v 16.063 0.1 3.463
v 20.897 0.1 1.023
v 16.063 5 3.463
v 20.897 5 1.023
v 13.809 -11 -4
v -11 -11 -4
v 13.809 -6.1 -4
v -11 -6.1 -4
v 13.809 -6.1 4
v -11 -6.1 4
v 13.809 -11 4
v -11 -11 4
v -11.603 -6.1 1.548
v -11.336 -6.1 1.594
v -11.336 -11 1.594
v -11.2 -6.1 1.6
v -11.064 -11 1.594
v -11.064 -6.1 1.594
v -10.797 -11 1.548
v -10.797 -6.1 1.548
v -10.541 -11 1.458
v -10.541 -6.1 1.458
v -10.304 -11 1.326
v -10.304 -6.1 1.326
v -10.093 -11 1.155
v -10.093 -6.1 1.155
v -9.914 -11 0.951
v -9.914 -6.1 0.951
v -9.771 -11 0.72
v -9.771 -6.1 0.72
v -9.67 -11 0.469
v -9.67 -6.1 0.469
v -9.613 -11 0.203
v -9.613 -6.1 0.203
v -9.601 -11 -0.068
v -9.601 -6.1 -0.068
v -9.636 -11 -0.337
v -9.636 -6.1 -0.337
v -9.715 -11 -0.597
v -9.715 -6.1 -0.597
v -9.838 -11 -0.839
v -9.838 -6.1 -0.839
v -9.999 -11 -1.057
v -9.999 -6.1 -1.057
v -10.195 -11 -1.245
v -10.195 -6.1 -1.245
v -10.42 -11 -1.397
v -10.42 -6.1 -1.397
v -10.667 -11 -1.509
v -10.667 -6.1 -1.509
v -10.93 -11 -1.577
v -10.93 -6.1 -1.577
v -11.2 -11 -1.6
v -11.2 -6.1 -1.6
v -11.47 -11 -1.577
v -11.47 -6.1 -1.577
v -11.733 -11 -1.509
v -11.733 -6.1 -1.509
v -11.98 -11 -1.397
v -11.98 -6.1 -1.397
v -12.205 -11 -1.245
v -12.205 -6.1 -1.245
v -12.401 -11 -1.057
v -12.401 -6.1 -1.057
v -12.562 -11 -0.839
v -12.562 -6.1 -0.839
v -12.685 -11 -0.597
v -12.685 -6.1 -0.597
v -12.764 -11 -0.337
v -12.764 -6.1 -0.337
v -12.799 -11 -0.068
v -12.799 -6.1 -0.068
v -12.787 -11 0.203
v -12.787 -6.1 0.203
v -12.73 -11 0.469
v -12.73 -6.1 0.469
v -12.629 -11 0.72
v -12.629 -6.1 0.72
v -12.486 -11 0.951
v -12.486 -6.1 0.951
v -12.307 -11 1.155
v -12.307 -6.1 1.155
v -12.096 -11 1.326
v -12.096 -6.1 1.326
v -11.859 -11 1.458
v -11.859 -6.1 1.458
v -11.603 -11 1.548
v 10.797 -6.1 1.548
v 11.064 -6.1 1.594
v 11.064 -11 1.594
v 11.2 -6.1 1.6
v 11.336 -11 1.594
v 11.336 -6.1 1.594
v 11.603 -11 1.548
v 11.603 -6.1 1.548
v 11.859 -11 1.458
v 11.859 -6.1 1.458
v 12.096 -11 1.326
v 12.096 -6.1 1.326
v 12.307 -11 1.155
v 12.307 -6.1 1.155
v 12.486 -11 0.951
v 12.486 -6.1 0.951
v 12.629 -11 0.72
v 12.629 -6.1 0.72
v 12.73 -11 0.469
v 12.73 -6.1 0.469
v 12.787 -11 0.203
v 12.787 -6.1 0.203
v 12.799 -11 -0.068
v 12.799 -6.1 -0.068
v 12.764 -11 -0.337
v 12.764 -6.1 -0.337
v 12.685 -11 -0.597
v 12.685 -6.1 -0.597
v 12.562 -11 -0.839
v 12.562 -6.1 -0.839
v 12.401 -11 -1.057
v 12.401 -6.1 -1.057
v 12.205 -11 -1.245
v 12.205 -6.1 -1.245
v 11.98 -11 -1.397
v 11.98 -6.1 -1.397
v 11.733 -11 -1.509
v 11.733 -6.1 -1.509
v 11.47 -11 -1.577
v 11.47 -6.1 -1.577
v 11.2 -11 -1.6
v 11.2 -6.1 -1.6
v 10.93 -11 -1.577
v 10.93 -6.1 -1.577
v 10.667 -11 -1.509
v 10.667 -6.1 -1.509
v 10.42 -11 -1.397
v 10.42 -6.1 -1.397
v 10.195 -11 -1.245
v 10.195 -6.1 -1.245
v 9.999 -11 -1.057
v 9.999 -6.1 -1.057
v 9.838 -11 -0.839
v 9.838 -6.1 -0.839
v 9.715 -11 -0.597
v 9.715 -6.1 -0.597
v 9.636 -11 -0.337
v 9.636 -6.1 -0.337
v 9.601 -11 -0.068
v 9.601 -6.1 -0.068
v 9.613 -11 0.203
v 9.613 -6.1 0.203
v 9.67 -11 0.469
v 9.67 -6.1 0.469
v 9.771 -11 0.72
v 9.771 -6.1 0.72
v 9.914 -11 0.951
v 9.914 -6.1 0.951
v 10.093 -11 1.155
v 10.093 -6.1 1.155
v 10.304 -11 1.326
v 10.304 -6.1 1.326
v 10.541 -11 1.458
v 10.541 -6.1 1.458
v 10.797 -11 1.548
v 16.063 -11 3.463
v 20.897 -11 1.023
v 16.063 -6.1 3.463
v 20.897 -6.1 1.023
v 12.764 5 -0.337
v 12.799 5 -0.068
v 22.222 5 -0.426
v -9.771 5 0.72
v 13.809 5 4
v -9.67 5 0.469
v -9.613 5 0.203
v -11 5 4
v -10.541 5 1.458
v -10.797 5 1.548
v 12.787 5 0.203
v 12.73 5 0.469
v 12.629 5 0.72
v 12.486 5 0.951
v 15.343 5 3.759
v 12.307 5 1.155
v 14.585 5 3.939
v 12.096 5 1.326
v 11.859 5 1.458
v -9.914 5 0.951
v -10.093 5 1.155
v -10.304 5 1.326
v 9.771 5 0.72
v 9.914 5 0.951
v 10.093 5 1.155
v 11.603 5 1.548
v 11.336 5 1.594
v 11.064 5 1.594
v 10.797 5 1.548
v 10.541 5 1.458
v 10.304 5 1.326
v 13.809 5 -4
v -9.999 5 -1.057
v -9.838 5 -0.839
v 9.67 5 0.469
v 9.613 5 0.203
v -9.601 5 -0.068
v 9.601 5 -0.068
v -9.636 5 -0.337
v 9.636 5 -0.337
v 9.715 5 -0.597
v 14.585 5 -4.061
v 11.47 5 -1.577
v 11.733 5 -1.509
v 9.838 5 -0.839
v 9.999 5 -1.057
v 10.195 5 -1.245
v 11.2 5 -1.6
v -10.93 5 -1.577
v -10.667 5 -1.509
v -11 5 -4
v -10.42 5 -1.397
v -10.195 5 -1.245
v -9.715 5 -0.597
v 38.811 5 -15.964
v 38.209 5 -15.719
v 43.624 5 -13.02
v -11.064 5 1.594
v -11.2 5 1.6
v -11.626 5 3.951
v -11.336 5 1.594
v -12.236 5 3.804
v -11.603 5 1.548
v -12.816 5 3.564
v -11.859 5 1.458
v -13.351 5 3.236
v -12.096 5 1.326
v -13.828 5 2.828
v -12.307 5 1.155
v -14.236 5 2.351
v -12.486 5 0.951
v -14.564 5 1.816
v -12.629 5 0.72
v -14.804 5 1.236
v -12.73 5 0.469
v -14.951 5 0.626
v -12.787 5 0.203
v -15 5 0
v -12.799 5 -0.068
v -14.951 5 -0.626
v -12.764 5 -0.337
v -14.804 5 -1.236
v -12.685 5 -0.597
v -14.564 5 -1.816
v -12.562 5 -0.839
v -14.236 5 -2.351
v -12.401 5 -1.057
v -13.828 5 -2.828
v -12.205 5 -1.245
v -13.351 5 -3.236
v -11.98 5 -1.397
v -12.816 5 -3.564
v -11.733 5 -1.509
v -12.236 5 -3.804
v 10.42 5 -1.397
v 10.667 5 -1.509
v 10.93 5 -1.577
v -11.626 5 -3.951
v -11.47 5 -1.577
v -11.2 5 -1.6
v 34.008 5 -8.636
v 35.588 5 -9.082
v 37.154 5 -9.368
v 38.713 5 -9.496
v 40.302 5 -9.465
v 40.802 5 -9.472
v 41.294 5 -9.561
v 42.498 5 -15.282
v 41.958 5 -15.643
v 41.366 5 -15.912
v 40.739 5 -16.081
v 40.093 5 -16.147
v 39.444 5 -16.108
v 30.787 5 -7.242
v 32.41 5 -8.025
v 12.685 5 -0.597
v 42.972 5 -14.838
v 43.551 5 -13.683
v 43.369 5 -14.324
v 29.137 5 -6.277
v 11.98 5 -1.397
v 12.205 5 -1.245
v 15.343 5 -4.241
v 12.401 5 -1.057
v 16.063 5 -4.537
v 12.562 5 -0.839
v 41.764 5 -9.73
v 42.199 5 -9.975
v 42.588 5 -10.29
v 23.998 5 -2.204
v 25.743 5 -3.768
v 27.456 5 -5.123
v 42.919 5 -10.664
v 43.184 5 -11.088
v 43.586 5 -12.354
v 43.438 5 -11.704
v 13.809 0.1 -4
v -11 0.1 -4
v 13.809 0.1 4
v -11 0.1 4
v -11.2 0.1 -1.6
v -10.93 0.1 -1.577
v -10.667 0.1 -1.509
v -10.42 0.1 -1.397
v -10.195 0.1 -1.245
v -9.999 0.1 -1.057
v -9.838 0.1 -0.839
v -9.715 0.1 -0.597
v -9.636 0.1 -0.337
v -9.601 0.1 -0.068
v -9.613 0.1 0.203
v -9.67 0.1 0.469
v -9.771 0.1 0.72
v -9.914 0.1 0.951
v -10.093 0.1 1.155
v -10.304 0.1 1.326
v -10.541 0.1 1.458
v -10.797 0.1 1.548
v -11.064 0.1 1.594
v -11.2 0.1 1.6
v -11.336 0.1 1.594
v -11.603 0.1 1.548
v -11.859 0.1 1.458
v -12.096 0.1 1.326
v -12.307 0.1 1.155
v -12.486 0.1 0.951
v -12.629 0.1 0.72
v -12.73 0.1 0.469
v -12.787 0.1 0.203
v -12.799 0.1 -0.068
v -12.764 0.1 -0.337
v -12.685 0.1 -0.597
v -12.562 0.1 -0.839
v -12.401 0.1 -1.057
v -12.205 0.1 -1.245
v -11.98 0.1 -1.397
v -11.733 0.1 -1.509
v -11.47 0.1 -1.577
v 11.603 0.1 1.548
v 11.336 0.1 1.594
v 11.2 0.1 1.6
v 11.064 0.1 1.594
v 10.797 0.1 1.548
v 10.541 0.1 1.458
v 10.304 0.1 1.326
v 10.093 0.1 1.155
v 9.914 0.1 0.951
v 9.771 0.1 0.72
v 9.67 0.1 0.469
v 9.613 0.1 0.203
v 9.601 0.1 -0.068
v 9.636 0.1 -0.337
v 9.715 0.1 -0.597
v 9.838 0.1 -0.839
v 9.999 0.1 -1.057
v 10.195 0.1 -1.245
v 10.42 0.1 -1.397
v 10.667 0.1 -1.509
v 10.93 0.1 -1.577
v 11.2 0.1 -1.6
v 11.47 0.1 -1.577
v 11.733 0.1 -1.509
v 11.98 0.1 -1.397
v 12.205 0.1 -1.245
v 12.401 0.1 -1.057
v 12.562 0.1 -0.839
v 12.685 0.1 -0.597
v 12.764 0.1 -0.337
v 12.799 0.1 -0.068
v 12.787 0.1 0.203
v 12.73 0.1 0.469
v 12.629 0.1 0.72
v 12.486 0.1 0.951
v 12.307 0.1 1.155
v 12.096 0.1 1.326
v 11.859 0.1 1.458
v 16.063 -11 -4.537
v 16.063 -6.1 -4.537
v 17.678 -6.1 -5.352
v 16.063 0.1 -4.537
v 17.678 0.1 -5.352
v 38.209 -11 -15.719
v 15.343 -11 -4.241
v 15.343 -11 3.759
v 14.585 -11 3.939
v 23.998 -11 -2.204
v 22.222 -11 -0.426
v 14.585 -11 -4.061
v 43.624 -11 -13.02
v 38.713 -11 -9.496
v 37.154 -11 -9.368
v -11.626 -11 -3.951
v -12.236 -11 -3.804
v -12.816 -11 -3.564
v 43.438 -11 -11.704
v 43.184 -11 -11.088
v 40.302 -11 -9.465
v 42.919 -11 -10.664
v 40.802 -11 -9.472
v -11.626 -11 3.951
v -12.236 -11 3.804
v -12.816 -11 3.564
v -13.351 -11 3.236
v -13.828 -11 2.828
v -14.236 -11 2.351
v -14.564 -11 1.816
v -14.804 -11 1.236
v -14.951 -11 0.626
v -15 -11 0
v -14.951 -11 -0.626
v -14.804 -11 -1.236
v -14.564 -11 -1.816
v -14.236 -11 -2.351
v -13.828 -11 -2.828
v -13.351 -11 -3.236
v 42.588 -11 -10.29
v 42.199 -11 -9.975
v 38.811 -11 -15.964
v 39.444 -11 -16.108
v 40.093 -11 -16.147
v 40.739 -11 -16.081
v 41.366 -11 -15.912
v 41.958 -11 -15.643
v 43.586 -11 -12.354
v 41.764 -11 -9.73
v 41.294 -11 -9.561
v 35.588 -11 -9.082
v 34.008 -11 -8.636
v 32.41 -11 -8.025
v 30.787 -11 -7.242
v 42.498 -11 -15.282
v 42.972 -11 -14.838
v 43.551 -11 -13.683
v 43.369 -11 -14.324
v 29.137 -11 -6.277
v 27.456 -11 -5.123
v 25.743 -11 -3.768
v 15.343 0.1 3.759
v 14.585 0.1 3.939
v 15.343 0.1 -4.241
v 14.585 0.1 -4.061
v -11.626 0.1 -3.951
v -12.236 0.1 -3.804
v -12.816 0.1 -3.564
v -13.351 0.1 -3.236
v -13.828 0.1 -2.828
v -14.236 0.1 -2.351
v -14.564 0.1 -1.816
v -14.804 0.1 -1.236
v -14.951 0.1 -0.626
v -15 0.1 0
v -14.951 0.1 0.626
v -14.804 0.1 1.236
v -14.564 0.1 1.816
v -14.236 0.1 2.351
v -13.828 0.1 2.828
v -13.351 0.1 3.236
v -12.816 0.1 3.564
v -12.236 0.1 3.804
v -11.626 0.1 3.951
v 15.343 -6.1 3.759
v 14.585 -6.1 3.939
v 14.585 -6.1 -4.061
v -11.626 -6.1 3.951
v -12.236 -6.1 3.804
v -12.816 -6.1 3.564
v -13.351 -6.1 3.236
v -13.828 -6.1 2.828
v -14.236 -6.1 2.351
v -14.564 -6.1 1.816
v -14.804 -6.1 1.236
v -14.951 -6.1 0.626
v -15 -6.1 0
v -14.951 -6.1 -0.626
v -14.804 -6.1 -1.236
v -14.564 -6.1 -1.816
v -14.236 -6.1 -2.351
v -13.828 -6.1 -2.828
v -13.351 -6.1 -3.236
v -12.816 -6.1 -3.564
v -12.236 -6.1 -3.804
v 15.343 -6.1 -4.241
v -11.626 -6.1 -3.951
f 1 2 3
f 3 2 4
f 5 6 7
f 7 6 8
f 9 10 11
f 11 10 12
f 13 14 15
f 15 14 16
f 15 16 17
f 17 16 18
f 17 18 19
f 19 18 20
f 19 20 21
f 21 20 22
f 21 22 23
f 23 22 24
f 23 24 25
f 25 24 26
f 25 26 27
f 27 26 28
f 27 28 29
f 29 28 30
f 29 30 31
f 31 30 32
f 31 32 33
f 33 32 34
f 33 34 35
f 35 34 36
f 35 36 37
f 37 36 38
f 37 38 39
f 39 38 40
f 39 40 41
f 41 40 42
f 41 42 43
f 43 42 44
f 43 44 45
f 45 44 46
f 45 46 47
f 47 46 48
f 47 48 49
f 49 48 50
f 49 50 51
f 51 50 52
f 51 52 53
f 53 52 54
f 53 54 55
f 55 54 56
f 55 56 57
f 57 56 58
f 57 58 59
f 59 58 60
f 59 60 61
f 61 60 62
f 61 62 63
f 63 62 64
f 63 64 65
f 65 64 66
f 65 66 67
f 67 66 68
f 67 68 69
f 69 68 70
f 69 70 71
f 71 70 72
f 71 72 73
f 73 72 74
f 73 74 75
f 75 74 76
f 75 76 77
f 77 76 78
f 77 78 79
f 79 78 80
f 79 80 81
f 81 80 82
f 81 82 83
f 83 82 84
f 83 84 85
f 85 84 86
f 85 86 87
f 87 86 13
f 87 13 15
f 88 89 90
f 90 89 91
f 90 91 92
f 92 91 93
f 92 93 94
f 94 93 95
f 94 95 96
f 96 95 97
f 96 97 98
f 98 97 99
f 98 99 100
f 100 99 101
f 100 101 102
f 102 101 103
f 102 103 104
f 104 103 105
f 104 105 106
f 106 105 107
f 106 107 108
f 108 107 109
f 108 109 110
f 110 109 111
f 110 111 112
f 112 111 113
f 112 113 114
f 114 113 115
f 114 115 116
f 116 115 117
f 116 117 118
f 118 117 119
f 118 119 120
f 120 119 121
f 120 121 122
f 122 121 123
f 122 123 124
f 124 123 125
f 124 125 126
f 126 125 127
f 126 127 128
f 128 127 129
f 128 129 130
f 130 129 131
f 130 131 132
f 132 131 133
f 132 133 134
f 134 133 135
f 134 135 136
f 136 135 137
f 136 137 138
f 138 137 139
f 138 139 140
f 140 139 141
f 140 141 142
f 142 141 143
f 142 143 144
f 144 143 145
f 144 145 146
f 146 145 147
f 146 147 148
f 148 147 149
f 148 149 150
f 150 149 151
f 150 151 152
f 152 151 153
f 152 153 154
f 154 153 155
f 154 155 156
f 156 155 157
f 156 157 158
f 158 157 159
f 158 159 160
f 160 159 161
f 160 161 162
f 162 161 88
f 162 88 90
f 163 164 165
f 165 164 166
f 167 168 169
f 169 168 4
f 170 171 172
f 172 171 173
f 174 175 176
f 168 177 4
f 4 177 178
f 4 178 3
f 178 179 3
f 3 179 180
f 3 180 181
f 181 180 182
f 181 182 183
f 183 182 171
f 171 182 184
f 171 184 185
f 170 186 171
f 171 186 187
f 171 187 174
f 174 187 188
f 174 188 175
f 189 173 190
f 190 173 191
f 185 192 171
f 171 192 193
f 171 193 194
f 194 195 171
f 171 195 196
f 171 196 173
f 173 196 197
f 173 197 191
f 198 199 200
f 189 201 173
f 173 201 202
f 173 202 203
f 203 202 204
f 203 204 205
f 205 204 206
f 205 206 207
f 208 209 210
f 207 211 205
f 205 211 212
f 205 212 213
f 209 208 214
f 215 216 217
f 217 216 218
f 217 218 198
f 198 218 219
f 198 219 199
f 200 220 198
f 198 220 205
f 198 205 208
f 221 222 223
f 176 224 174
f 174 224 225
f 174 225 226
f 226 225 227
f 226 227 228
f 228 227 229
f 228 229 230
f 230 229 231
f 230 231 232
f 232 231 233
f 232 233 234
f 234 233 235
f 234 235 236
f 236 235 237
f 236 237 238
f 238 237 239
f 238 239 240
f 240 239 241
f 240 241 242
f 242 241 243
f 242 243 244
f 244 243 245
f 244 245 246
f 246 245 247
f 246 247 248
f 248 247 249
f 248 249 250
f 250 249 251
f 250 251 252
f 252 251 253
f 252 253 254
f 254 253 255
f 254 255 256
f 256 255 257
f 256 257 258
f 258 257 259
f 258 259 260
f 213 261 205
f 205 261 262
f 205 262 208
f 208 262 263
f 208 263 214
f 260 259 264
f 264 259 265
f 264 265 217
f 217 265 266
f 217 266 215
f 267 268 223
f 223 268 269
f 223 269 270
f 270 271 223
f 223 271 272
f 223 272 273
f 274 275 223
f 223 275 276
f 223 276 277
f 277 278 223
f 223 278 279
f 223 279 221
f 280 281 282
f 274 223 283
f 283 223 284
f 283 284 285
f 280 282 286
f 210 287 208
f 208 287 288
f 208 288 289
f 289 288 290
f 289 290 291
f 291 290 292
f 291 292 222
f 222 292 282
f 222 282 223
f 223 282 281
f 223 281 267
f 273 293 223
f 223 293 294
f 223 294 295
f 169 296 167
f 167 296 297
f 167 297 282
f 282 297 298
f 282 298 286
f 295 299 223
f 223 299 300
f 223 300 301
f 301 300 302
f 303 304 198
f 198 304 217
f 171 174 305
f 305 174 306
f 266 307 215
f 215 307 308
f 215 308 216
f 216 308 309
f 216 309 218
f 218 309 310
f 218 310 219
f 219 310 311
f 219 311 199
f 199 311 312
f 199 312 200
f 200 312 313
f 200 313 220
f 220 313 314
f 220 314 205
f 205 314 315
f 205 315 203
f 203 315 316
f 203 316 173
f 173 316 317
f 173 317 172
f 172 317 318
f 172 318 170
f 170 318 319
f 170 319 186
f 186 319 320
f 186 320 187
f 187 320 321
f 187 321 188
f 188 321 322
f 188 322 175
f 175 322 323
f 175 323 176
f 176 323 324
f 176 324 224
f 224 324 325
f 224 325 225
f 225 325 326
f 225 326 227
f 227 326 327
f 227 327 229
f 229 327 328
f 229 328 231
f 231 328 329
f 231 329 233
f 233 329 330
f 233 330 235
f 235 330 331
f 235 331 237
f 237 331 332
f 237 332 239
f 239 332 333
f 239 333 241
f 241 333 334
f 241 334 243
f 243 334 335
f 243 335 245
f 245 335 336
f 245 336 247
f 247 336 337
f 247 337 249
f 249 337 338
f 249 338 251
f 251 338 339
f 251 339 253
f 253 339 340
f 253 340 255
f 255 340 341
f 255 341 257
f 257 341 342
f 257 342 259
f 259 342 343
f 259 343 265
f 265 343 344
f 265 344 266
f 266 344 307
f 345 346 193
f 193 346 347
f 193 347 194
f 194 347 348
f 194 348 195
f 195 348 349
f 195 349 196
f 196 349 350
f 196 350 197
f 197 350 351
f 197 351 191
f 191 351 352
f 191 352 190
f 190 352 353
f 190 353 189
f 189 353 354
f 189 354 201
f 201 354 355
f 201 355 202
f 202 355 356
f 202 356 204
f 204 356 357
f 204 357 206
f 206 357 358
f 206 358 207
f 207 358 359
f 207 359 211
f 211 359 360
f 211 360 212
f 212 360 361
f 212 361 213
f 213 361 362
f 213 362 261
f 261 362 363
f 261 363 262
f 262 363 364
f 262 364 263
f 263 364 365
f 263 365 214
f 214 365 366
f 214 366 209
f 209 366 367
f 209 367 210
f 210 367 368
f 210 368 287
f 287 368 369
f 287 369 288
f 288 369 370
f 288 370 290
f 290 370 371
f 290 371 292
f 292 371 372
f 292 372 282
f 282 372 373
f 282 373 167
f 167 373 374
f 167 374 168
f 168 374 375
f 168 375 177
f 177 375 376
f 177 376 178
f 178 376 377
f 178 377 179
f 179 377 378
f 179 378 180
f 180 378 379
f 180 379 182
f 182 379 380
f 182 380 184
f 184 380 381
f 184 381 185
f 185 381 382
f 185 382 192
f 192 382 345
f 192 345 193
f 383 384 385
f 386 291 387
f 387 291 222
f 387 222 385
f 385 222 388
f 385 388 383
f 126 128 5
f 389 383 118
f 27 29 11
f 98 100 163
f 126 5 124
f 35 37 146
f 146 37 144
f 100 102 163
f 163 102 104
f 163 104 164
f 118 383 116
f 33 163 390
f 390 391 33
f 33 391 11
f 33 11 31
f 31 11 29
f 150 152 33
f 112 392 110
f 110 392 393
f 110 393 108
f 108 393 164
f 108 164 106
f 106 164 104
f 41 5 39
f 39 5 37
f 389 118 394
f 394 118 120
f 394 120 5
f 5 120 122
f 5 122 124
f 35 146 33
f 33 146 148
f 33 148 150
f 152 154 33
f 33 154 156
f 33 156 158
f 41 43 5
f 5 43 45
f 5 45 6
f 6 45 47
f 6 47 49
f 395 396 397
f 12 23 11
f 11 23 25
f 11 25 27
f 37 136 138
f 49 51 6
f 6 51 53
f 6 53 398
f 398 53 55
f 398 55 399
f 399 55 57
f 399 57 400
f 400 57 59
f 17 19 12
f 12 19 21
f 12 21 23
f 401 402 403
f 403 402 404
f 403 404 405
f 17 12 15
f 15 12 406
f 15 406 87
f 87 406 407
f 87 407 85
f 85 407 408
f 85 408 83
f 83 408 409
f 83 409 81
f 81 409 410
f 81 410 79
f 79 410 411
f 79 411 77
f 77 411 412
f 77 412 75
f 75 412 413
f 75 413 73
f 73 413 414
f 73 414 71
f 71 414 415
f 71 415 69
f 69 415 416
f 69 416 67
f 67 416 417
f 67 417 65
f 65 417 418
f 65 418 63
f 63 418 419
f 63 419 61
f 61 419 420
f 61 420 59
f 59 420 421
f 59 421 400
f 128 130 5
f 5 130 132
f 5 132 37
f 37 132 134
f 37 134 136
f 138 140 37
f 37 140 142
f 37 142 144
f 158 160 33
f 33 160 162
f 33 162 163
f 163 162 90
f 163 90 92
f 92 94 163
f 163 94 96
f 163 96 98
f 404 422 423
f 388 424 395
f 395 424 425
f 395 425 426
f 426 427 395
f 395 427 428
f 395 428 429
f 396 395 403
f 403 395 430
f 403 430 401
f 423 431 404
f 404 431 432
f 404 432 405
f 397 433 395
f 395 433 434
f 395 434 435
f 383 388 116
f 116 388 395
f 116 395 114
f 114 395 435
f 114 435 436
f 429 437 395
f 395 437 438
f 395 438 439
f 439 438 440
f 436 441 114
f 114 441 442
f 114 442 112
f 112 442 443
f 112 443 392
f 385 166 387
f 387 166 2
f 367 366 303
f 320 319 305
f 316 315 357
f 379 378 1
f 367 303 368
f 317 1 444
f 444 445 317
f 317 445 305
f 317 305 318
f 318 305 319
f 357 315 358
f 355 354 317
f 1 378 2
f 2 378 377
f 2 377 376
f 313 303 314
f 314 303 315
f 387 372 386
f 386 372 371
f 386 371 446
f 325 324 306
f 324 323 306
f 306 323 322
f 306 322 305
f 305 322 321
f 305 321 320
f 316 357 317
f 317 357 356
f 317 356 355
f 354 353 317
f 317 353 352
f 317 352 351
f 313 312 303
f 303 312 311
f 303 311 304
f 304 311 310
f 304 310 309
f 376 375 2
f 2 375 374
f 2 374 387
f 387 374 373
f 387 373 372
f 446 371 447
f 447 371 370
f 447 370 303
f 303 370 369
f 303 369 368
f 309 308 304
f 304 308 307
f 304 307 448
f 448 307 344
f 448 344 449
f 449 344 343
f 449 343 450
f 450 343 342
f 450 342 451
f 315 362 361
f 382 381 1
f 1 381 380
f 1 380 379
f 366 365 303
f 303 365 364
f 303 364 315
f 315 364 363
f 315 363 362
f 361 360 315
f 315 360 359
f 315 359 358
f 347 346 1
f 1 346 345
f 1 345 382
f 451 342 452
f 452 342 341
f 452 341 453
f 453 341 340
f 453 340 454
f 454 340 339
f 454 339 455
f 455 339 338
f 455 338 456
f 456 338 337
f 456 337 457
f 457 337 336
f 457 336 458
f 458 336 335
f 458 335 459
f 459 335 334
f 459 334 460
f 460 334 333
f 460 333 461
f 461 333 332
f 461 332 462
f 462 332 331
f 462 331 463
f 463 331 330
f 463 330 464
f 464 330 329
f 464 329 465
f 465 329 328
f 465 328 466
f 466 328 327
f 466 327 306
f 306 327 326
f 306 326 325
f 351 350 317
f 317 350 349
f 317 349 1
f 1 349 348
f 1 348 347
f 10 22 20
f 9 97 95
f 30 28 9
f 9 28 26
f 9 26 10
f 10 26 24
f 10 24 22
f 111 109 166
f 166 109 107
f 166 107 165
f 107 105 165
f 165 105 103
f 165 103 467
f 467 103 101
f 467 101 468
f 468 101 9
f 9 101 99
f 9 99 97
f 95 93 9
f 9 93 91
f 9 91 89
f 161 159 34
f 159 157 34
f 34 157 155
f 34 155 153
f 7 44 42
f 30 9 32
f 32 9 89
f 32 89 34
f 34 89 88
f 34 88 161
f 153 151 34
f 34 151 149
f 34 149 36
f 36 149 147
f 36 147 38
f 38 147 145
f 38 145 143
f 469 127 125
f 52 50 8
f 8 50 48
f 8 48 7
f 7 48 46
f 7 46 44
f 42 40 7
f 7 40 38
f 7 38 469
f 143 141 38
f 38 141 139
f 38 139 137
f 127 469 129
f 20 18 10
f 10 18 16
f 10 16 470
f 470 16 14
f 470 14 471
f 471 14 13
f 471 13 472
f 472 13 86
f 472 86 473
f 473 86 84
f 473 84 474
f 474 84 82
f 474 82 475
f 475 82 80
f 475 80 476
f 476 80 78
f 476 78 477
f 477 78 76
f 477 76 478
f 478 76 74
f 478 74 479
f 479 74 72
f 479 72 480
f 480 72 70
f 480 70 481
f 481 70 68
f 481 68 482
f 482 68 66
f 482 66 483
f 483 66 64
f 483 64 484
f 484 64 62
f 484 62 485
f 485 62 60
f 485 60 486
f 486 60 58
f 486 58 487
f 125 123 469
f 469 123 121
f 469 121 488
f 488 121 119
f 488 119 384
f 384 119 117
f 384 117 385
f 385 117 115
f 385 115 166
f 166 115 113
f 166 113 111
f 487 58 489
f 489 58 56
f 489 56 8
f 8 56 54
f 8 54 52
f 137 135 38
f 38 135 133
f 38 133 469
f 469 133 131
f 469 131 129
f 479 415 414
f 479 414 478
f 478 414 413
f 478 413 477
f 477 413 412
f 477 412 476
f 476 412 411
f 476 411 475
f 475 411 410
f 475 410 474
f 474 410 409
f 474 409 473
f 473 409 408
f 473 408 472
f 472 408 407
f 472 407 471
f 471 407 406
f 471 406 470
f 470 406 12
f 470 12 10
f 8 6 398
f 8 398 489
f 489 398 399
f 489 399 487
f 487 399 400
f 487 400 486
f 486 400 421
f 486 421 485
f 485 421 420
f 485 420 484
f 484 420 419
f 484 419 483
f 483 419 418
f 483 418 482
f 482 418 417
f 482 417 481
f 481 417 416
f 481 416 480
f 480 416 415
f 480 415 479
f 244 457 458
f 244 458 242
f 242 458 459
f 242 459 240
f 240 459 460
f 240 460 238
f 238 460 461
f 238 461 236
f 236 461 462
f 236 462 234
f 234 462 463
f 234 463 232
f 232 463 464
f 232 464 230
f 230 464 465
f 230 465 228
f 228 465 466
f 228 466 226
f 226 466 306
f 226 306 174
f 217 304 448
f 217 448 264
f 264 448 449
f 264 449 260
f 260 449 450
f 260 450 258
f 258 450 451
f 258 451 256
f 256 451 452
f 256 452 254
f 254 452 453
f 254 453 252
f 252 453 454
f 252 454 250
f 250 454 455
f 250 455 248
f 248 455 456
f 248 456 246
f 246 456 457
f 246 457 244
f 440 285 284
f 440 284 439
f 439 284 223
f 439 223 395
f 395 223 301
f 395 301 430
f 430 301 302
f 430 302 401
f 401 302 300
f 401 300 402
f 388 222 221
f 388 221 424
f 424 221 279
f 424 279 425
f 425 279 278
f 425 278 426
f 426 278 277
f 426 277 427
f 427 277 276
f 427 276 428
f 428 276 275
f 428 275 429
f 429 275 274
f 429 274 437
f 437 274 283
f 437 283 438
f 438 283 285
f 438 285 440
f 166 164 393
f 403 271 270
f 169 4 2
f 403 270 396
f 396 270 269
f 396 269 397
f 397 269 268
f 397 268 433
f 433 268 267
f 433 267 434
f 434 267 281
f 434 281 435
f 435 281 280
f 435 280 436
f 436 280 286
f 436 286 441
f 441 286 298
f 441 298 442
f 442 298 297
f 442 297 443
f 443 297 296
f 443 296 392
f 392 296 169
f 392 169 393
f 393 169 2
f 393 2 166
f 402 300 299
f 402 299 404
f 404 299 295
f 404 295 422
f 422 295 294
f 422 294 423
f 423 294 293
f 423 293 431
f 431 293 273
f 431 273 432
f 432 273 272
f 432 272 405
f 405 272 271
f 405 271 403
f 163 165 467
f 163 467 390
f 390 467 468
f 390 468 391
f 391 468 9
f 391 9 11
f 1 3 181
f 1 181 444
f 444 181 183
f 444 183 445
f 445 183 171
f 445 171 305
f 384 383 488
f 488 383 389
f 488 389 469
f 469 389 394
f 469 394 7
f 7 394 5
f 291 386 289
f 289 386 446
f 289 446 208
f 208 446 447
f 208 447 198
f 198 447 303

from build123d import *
from build123d.topology import SkipClean

# Parameters (mm, degrees)
SKETCH_1_W               = 30
SKETCH_1_H               = 8
SKETCH_1_R               = 1.6
EXTRUDE_1_DEPTH          = 5
EXTRUDE_2_DEPTH          = 5
EXTRUDE_START            = 11
SKETCH_3_R               = 1.6
EXTRUDE_3_DEPTH          = 11
CUT_EXTRUDE_1_DEPTH      = 0.1
CUT_EXTRUDE_1_DEPTH_BACK = 6.1
FILLET_1_R               = 4
FILLET_2_R               = 4
CUT_EXTRUDE_2_DEPTH      = 16
FILLET_3_R               = 3
FILLET_4_R               = 5


# Some blends are built 0.0001 mm under size
with BuildPart() as part:
    # 草图1 → 凸台-拉伸1 (new body)
    with BuildSketch(Plane(origin=(0, 0, 0), x_dir=(1, 0, 0), z_dir=(0, 1, 0))):
        Rectangle(SKETCH_1_W, SKETCH_1_H)
        with Locations(Location((-11.2, 0, 0), (0, 0, 270))):
            Circle(SKETCH_1_R, mode=Mode.SUBTRACT)
        with Locations(Location((11.2, 0, 0), (0, 0, 90))):
            Circle(SKETCH_1_R, mode=Mode.SUBTRACT)
    extrude(amount=EXTRUDE_1_DEPTH)

    # 草图2 → 凸台-拉伸2 (add)
    with BuildSketch(Plane(origin=(0, 5, 0), x_dir=(1, 0, 0), z_dir=(0, 1, 0))):
        Polygon((15, 4), (41.779934935, 17.521652446), (44.998681359, 11.146853201), (15, -4), align=None)
    extrude(amount=-EXTRUDE_2_DEPTH)

    # 草图3 → 凸台-拉伸3 (add)
    with SkipClean():  # the faces are left unmerged after this step: merging them gives an invalid solid
        with BuildSketch(Plane.XZ.offset(EXTRUDE_START)):
            Polygon((-15, -4), (15, -4), (41.779934935, -17.521652446), (44.998681359, -11.146853201), (15, 4), (-15, 4), align=None)
            with Locations(Location((-11.2, 0, 0), (0, 0, 270))):
                Circle(SKETCH_3_R, mode=Mode.SUBTRACT)
            with Locations(Location((11.2, 0, 0), (0, 0, 270))):
                Circle(SKETCH_3_R, mode=Mode.SUBTRACT)
        extrude(amount=-EXTRUDE_3_DEPTH)

    # 草图4 → 切除-拉伸1 (cut, two sides: drawn at the far end of the back side and taken through both)
    with BuildSketch(Plane(origin=(0, 0, 0), x_dir=(1, 0, 0), z_dir=(0, 1, 0)).offset(-CUT_EXTRUDE_1_DEPTH_BACK)):
        Polygon((17.677993493, 5.352165245), (20.899244527, -1.027594436), (19.919281017, -1.51616991), (15, -4), (-15, -4), (-15, 4), (15, 4), align=None)
    extrude(amount=CUT_EXTRUDE_1_DEPTH + CUT_EXTRUDE_1_DEPTH_BACK, mode=Mode.SUBTRACT)

    # 圆角1
    fillet_1_edges = [part.edges().sort_by_distance(p)[0] for p in [
        (-15, -8.55, -4),
        (-15, 2.55, -4),
        (-15, -8.55, 4),
        (-15, 2.55, 4),
    ]]
    fillet(fillet_1_edges, radius=FILLET_1_R - 0.0001)  # a hair under: the kernel refuses the full size

    # 圆角2
    # the kernel refuses this fillet: 4 mm, written as the material it takes off along each edge
    with BuildSketch(Plane(origin=(41.779934935, 15, -17.521652446), x_dir=(-0.8926644978329522, 0, 0.45072174820907335), z_dir=(0, -1, 0)), Plane(origin=(44.998681359, -21, -11.146853201), x_dir=(-0.8926644978329524, 0, 0.450721748209073), z_dir=(0, 1, 0))) as fillet_2_piece_1:
        with BuildLine():
            CenterArc((FILLET_2_R, -FILLET_2_R), FILLET_2_R, 90, 90)
            Line((0, -FILLET_2_R), (0, 0))
            Line((0, 0), (FILLET_2_R, 0))
        make_face()
    extrude(amount=36, mode=Mode.SUBTRACT)

    # 草图5 → 切除-拉伸2 (cut)
    with BuildSketch(Plane(origin=(0, 5, 0), x_dir=(1, 0, 0), z_dir=(0, 1, 0))):
        with BuildLine():
            Line((20.896739918, -1.022634001), (41.428023368, 9.343966208))
            add(Edge.make_bspline(
                [(20.896739918, -1.022634001), (25.980191779, 4.72849772), (33.095529518, 10.551057562), (41.428023368, 9.343966208)],
                knots=[0, 0, 0, 0, 1, 1, 1, 1], degree=3))
        make_face()
    extrude(amount=-CUT_EXTRUDE_2_DEPTH, mode=Mode.SUBTRACT)

    # 圆角3
    fillet_3_edges = [part.edges().sort_by_distance(p)[0] for p in [
        (41.428023368, -3, -9.343966208),
    ]]
    fillet(fillet_3_edges, radius=FILLET_3_R)

    # 圆角4
    fillet_4_edges = [part.edges().sort_by_distance(p)[0] for p in [
        (15, -8.55, 4),
        (15, -8.55, -4),
        (15, 2.55, 4),
        (15, 2.55, -4),
    ]]
    fillet(fillet_4_edges, radius=FILLET_4_R)


solid = part.part
